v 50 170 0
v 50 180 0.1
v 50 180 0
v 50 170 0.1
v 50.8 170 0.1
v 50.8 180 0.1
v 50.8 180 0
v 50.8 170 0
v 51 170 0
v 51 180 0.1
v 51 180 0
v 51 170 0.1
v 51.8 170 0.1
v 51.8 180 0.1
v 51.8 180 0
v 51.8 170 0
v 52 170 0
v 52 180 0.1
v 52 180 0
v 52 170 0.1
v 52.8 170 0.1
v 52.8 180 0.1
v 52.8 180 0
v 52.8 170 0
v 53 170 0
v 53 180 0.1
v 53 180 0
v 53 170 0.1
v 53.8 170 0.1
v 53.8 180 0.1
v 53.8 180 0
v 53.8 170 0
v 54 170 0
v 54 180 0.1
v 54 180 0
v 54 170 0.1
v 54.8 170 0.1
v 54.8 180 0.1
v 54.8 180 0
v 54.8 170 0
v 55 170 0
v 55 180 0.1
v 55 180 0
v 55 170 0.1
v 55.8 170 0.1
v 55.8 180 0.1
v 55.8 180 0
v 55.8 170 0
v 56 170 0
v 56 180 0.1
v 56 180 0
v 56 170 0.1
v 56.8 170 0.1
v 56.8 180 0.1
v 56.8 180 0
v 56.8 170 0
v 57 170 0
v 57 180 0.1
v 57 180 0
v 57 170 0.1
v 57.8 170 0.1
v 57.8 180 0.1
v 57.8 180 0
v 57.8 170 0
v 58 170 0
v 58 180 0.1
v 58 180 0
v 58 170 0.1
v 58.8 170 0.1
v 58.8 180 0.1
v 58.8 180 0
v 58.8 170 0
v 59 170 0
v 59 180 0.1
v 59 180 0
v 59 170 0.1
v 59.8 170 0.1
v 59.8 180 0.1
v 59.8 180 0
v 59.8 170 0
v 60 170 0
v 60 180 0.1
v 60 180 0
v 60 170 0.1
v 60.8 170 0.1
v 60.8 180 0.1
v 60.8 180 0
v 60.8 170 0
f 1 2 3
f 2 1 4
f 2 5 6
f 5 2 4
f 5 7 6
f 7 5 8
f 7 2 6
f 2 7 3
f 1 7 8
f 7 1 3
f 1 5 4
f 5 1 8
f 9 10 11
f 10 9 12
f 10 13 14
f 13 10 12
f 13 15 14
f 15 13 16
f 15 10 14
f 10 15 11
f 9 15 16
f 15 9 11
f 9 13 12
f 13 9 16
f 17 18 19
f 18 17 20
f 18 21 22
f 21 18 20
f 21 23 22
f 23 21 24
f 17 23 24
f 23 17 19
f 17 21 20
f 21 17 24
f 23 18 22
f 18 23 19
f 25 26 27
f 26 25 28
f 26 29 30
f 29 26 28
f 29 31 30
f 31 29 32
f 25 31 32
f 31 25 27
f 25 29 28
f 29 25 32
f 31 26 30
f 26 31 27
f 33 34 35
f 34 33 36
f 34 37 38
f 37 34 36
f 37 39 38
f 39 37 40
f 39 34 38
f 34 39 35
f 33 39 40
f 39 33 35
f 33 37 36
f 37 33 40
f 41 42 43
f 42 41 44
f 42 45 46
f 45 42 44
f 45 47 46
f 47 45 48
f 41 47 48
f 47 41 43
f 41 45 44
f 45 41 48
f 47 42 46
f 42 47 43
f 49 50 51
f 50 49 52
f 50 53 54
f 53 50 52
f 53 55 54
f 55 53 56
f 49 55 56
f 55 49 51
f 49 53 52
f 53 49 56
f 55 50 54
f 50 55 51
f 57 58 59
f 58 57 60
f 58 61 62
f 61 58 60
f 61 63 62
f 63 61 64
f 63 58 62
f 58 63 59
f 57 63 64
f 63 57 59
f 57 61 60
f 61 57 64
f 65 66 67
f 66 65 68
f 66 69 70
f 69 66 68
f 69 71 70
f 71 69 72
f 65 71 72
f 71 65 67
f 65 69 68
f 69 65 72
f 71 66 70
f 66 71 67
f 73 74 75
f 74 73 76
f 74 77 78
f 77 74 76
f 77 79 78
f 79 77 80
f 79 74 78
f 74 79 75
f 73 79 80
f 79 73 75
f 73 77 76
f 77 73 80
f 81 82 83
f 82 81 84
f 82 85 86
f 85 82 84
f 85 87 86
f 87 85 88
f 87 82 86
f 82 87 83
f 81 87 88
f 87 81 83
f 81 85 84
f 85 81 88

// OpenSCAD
translate([10+40,10+160,0])
        for (i = [0 : 10]){
            translate([i,0,0])
                cube(size = [0.8,10,0.1]);
    }
